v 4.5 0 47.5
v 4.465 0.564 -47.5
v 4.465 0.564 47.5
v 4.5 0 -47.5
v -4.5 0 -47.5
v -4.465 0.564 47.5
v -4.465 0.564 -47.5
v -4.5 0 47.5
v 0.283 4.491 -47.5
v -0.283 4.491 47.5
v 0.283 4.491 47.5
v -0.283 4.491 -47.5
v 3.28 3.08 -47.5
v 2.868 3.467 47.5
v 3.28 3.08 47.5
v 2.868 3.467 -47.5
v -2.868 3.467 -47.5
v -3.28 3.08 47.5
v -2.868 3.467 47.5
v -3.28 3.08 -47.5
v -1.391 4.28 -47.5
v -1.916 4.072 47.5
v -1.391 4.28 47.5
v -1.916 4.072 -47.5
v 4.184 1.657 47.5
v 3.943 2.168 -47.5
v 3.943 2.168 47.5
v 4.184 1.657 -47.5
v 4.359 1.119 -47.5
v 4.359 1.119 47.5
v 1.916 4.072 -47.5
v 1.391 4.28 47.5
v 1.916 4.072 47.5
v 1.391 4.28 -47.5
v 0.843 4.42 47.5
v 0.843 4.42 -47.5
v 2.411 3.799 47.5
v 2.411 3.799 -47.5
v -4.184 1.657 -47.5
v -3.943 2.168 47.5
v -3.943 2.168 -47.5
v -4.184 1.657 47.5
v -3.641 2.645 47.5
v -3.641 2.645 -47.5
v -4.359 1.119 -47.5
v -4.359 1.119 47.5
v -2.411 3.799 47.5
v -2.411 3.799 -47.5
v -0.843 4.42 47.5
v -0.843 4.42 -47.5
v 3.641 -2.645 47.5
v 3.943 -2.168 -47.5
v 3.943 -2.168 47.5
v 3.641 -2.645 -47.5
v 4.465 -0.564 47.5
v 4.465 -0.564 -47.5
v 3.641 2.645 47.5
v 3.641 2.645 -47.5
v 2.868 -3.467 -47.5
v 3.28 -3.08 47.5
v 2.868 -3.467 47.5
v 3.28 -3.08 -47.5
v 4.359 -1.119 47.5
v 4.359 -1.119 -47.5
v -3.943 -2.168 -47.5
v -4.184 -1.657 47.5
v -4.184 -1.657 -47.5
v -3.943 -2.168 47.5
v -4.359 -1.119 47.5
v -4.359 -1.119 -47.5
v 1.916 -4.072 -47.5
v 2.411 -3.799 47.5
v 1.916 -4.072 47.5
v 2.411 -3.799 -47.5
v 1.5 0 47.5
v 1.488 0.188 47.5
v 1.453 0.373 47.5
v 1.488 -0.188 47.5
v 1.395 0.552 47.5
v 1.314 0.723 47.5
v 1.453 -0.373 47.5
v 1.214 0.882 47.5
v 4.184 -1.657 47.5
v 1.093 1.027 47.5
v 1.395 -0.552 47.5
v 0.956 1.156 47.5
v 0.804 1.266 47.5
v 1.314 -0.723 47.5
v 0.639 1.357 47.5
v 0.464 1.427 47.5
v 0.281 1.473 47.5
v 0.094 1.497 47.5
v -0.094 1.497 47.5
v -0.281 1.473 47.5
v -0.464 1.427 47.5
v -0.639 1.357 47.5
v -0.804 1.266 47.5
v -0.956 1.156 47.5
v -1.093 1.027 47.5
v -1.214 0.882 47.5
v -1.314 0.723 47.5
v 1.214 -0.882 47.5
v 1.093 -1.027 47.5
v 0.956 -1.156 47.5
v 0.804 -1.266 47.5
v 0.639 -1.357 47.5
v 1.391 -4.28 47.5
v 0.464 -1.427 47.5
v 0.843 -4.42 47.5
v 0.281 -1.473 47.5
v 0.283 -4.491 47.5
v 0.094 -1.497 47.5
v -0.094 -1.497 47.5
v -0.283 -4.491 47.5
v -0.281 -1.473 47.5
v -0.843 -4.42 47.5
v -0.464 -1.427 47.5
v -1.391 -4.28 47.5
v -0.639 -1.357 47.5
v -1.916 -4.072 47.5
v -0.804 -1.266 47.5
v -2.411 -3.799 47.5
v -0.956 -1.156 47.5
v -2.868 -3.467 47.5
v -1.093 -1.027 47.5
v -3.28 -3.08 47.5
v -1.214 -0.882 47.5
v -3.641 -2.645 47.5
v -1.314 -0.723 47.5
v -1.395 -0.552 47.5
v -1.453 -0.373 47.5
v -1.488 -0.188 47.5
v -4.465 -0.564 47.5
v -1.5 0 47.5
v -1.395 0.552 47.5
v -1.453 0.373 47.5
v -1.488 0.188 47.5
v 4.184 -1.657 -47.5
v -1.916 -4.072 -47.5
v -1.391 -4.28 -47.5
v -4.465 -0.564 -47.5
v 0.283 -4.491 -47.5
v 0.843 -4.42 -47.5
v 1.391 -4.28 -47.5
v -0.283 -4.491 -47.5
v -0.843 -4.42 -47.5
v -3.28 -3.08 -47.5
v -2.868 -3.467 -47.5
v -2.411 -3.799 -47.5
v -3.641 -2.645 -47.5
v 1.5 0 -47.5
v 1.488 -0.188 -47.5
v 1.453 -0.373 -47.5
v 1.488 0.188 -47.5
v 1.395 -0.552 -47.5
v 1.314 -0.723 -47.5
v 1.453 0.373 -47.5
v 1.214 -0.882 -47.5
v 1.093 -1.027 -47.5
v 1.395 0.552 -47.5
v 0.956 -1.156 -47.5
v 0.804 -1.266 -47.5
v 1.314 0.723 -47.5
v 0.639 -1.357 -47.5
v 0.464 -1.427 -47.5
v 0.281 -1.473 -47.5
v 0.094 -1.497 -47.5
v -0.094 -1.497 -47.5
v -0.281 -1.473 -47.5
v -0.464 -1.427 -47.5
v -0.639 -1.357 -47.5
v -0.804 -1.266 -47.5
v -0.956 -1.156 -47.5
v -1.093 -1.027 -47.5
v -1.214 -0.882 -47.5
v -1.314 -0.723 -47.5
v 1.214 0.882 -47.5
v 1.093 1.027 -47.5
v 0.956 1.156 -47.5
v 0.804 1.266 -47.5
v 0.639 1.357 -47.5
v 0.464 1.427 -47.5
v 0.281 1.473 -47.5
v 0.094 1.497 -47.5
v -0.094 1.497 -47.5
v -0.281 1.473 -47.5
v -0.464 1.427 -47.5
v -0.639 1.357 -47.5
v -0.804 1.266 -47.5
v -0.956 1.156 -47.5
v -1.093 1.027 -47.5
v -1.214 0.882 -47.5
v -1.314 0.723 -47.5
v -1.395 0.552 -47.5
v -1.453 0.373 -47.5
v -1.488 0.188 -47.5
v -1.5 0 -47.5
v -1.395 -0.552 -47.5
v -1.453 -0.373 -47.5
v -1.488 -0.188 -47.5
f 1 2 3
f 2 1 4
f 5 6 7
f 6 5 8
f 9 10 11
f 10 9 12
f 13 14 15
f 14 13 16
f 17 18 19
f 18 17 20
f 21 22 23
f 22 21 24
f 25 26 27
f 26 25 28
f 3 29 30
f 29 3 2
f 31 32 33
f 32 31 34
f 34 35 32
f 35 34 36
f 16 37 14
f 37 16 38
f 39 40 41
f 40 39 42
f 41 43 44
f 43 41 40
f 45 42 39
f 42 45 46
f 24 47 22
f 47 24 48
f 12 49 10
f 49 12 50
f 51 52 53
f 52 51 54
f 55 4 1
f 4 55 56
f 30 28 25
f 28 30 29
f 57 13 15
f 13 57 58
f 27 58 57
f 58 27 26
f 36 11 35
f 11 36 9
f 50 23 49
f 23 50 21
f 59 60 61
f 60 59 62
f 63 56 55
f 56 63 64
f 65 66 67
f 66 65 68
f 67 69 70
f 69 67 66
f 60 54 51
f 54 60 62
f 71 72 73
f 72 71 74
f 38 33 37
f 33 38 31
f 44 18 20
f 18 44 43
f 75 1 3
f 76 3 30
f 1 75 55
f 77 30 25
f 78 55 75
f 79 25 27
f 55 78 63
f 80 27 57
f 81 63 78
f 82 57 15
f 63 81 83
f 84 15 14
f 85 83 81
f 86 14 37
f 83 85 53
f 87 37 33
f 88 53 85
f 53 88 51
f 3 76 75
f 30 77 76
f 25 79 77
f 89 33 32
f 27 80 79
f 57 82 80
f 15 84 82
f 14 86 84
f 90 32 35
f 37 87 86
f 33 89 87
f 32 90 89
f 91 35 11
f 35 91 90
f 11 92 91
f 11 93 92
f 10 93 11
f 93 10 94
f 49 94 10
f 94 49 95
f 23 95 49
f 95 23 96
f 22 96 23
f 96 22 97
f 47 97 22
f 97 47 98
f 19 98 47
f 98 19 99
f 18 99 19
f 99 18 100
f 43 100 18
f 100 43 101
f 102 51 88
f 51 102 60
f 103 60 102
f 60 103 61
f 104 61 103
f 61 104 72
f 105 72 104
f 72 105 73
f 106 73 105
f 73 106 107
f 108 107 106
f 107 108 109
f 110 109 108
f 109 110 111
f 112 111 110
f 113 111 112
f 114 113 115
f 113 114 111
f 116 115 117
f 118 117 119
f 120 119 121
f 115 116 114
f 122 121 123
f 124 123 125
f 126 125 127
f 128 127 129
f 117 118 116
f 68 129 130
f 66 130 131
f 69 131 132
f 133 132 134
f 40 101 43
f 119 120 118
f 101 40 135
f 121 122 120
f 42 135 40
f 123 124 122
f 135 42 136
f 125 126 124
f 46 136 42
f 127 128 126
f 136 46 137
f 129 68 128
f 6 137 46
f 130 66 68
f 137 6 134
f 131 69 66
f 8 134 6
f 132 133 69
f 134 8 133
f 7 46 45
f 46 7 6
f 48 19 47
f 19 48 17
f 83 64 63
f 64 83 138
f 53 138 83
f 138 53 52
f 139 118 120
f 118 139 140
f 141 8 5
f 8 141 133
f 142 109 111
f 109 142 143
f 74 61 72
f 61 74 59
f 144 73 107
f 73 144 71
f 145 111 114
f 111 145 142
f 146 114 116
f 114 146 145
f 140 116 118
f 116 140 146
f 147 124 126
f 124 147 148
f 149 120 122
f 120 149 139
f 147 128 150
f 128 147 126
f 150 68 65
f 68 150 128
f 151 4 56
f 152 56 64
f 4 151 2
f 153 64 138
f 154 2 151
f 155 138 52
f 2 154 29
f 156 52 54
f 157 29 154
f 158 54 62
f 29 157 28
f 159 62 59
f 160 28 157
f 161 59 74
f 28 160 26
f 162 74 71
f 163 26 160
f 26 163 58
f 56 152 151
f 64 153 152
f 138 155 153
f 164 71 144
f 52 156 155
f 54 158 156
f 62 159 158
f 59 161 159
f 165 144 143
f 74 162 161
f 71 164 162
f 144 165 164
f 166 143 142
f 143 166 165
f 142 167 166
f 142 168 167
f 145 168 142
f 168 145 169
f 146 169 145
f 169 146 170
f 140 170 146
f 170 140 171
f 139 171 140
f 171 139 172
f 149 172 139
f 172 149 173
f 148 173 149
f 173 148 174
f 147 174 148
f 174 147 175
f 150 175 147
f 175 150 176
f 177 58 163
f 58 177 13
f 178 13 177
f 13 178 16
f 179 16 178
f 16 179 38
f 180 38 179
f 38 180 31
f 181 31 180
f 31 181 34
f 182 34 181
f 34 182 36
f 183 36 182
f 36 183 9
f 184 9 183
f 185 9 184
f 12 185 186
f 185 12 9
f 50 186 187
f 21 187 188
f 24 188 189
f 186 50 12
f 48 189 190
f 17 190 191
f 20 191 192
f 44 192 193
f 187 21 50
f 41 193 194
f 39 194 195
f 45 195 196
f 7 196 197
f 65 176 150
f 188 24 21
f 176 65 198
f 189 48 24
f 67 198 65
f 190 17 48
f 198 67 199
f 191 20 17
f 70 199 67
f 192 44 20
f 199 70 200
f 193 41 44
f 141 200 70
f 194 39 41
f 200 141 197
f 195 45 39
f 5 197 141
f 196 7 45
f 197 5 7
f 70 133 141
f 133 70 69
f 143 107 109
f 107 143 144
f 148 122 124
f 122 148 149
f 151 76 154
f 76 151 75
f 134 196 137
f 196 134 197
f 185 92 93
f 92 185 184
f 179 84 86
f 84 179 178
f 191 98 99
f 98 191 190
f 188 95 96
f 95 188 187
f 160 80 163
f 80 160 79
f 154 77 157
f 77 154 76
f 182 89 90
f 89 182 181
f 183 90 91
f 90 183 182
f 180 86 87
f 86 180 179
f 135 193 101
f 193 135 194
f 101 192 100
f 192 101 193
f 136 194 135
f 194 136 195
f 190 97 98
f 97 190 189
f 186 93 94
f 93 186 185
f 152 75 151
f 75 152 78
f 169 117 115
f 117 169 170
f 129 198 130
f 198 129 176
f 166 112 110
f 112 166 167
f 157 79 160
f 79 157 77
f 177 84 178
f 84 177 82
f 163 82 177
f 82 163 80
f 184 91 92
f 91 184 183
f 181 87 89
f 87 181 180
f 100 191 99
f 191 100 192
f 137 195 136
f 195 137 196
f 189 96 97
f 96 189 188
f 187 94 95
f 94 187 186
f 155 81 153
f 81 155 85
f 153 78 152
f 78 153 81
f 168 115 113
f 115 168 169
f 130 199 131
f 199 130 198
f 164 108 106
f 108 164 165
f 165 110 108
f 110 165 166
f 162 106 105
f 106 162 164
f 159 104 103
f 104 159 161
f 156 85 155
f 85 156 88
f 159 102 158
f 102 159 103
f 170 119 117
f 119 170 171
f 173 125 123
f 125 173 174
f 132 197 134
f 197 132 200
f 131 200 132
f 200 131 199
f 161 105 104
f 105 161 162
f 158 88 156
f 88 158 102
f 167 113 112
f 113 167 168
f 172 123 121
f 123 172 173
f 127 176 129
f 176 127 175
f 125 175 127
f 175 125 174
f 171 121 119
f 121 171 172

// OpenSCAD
$fn = 50;


difference() {
	union() {
		translate(v = [0, 0, -47.5000000000]) {
			cylinder(h = 95, r = 4.5000000000);
		}
	}
	union() {
		translate(v = [0, 0, -100.0000000000]) {
			cylinder(h = 200, r = 1.5000000000);
		}
	}
}
